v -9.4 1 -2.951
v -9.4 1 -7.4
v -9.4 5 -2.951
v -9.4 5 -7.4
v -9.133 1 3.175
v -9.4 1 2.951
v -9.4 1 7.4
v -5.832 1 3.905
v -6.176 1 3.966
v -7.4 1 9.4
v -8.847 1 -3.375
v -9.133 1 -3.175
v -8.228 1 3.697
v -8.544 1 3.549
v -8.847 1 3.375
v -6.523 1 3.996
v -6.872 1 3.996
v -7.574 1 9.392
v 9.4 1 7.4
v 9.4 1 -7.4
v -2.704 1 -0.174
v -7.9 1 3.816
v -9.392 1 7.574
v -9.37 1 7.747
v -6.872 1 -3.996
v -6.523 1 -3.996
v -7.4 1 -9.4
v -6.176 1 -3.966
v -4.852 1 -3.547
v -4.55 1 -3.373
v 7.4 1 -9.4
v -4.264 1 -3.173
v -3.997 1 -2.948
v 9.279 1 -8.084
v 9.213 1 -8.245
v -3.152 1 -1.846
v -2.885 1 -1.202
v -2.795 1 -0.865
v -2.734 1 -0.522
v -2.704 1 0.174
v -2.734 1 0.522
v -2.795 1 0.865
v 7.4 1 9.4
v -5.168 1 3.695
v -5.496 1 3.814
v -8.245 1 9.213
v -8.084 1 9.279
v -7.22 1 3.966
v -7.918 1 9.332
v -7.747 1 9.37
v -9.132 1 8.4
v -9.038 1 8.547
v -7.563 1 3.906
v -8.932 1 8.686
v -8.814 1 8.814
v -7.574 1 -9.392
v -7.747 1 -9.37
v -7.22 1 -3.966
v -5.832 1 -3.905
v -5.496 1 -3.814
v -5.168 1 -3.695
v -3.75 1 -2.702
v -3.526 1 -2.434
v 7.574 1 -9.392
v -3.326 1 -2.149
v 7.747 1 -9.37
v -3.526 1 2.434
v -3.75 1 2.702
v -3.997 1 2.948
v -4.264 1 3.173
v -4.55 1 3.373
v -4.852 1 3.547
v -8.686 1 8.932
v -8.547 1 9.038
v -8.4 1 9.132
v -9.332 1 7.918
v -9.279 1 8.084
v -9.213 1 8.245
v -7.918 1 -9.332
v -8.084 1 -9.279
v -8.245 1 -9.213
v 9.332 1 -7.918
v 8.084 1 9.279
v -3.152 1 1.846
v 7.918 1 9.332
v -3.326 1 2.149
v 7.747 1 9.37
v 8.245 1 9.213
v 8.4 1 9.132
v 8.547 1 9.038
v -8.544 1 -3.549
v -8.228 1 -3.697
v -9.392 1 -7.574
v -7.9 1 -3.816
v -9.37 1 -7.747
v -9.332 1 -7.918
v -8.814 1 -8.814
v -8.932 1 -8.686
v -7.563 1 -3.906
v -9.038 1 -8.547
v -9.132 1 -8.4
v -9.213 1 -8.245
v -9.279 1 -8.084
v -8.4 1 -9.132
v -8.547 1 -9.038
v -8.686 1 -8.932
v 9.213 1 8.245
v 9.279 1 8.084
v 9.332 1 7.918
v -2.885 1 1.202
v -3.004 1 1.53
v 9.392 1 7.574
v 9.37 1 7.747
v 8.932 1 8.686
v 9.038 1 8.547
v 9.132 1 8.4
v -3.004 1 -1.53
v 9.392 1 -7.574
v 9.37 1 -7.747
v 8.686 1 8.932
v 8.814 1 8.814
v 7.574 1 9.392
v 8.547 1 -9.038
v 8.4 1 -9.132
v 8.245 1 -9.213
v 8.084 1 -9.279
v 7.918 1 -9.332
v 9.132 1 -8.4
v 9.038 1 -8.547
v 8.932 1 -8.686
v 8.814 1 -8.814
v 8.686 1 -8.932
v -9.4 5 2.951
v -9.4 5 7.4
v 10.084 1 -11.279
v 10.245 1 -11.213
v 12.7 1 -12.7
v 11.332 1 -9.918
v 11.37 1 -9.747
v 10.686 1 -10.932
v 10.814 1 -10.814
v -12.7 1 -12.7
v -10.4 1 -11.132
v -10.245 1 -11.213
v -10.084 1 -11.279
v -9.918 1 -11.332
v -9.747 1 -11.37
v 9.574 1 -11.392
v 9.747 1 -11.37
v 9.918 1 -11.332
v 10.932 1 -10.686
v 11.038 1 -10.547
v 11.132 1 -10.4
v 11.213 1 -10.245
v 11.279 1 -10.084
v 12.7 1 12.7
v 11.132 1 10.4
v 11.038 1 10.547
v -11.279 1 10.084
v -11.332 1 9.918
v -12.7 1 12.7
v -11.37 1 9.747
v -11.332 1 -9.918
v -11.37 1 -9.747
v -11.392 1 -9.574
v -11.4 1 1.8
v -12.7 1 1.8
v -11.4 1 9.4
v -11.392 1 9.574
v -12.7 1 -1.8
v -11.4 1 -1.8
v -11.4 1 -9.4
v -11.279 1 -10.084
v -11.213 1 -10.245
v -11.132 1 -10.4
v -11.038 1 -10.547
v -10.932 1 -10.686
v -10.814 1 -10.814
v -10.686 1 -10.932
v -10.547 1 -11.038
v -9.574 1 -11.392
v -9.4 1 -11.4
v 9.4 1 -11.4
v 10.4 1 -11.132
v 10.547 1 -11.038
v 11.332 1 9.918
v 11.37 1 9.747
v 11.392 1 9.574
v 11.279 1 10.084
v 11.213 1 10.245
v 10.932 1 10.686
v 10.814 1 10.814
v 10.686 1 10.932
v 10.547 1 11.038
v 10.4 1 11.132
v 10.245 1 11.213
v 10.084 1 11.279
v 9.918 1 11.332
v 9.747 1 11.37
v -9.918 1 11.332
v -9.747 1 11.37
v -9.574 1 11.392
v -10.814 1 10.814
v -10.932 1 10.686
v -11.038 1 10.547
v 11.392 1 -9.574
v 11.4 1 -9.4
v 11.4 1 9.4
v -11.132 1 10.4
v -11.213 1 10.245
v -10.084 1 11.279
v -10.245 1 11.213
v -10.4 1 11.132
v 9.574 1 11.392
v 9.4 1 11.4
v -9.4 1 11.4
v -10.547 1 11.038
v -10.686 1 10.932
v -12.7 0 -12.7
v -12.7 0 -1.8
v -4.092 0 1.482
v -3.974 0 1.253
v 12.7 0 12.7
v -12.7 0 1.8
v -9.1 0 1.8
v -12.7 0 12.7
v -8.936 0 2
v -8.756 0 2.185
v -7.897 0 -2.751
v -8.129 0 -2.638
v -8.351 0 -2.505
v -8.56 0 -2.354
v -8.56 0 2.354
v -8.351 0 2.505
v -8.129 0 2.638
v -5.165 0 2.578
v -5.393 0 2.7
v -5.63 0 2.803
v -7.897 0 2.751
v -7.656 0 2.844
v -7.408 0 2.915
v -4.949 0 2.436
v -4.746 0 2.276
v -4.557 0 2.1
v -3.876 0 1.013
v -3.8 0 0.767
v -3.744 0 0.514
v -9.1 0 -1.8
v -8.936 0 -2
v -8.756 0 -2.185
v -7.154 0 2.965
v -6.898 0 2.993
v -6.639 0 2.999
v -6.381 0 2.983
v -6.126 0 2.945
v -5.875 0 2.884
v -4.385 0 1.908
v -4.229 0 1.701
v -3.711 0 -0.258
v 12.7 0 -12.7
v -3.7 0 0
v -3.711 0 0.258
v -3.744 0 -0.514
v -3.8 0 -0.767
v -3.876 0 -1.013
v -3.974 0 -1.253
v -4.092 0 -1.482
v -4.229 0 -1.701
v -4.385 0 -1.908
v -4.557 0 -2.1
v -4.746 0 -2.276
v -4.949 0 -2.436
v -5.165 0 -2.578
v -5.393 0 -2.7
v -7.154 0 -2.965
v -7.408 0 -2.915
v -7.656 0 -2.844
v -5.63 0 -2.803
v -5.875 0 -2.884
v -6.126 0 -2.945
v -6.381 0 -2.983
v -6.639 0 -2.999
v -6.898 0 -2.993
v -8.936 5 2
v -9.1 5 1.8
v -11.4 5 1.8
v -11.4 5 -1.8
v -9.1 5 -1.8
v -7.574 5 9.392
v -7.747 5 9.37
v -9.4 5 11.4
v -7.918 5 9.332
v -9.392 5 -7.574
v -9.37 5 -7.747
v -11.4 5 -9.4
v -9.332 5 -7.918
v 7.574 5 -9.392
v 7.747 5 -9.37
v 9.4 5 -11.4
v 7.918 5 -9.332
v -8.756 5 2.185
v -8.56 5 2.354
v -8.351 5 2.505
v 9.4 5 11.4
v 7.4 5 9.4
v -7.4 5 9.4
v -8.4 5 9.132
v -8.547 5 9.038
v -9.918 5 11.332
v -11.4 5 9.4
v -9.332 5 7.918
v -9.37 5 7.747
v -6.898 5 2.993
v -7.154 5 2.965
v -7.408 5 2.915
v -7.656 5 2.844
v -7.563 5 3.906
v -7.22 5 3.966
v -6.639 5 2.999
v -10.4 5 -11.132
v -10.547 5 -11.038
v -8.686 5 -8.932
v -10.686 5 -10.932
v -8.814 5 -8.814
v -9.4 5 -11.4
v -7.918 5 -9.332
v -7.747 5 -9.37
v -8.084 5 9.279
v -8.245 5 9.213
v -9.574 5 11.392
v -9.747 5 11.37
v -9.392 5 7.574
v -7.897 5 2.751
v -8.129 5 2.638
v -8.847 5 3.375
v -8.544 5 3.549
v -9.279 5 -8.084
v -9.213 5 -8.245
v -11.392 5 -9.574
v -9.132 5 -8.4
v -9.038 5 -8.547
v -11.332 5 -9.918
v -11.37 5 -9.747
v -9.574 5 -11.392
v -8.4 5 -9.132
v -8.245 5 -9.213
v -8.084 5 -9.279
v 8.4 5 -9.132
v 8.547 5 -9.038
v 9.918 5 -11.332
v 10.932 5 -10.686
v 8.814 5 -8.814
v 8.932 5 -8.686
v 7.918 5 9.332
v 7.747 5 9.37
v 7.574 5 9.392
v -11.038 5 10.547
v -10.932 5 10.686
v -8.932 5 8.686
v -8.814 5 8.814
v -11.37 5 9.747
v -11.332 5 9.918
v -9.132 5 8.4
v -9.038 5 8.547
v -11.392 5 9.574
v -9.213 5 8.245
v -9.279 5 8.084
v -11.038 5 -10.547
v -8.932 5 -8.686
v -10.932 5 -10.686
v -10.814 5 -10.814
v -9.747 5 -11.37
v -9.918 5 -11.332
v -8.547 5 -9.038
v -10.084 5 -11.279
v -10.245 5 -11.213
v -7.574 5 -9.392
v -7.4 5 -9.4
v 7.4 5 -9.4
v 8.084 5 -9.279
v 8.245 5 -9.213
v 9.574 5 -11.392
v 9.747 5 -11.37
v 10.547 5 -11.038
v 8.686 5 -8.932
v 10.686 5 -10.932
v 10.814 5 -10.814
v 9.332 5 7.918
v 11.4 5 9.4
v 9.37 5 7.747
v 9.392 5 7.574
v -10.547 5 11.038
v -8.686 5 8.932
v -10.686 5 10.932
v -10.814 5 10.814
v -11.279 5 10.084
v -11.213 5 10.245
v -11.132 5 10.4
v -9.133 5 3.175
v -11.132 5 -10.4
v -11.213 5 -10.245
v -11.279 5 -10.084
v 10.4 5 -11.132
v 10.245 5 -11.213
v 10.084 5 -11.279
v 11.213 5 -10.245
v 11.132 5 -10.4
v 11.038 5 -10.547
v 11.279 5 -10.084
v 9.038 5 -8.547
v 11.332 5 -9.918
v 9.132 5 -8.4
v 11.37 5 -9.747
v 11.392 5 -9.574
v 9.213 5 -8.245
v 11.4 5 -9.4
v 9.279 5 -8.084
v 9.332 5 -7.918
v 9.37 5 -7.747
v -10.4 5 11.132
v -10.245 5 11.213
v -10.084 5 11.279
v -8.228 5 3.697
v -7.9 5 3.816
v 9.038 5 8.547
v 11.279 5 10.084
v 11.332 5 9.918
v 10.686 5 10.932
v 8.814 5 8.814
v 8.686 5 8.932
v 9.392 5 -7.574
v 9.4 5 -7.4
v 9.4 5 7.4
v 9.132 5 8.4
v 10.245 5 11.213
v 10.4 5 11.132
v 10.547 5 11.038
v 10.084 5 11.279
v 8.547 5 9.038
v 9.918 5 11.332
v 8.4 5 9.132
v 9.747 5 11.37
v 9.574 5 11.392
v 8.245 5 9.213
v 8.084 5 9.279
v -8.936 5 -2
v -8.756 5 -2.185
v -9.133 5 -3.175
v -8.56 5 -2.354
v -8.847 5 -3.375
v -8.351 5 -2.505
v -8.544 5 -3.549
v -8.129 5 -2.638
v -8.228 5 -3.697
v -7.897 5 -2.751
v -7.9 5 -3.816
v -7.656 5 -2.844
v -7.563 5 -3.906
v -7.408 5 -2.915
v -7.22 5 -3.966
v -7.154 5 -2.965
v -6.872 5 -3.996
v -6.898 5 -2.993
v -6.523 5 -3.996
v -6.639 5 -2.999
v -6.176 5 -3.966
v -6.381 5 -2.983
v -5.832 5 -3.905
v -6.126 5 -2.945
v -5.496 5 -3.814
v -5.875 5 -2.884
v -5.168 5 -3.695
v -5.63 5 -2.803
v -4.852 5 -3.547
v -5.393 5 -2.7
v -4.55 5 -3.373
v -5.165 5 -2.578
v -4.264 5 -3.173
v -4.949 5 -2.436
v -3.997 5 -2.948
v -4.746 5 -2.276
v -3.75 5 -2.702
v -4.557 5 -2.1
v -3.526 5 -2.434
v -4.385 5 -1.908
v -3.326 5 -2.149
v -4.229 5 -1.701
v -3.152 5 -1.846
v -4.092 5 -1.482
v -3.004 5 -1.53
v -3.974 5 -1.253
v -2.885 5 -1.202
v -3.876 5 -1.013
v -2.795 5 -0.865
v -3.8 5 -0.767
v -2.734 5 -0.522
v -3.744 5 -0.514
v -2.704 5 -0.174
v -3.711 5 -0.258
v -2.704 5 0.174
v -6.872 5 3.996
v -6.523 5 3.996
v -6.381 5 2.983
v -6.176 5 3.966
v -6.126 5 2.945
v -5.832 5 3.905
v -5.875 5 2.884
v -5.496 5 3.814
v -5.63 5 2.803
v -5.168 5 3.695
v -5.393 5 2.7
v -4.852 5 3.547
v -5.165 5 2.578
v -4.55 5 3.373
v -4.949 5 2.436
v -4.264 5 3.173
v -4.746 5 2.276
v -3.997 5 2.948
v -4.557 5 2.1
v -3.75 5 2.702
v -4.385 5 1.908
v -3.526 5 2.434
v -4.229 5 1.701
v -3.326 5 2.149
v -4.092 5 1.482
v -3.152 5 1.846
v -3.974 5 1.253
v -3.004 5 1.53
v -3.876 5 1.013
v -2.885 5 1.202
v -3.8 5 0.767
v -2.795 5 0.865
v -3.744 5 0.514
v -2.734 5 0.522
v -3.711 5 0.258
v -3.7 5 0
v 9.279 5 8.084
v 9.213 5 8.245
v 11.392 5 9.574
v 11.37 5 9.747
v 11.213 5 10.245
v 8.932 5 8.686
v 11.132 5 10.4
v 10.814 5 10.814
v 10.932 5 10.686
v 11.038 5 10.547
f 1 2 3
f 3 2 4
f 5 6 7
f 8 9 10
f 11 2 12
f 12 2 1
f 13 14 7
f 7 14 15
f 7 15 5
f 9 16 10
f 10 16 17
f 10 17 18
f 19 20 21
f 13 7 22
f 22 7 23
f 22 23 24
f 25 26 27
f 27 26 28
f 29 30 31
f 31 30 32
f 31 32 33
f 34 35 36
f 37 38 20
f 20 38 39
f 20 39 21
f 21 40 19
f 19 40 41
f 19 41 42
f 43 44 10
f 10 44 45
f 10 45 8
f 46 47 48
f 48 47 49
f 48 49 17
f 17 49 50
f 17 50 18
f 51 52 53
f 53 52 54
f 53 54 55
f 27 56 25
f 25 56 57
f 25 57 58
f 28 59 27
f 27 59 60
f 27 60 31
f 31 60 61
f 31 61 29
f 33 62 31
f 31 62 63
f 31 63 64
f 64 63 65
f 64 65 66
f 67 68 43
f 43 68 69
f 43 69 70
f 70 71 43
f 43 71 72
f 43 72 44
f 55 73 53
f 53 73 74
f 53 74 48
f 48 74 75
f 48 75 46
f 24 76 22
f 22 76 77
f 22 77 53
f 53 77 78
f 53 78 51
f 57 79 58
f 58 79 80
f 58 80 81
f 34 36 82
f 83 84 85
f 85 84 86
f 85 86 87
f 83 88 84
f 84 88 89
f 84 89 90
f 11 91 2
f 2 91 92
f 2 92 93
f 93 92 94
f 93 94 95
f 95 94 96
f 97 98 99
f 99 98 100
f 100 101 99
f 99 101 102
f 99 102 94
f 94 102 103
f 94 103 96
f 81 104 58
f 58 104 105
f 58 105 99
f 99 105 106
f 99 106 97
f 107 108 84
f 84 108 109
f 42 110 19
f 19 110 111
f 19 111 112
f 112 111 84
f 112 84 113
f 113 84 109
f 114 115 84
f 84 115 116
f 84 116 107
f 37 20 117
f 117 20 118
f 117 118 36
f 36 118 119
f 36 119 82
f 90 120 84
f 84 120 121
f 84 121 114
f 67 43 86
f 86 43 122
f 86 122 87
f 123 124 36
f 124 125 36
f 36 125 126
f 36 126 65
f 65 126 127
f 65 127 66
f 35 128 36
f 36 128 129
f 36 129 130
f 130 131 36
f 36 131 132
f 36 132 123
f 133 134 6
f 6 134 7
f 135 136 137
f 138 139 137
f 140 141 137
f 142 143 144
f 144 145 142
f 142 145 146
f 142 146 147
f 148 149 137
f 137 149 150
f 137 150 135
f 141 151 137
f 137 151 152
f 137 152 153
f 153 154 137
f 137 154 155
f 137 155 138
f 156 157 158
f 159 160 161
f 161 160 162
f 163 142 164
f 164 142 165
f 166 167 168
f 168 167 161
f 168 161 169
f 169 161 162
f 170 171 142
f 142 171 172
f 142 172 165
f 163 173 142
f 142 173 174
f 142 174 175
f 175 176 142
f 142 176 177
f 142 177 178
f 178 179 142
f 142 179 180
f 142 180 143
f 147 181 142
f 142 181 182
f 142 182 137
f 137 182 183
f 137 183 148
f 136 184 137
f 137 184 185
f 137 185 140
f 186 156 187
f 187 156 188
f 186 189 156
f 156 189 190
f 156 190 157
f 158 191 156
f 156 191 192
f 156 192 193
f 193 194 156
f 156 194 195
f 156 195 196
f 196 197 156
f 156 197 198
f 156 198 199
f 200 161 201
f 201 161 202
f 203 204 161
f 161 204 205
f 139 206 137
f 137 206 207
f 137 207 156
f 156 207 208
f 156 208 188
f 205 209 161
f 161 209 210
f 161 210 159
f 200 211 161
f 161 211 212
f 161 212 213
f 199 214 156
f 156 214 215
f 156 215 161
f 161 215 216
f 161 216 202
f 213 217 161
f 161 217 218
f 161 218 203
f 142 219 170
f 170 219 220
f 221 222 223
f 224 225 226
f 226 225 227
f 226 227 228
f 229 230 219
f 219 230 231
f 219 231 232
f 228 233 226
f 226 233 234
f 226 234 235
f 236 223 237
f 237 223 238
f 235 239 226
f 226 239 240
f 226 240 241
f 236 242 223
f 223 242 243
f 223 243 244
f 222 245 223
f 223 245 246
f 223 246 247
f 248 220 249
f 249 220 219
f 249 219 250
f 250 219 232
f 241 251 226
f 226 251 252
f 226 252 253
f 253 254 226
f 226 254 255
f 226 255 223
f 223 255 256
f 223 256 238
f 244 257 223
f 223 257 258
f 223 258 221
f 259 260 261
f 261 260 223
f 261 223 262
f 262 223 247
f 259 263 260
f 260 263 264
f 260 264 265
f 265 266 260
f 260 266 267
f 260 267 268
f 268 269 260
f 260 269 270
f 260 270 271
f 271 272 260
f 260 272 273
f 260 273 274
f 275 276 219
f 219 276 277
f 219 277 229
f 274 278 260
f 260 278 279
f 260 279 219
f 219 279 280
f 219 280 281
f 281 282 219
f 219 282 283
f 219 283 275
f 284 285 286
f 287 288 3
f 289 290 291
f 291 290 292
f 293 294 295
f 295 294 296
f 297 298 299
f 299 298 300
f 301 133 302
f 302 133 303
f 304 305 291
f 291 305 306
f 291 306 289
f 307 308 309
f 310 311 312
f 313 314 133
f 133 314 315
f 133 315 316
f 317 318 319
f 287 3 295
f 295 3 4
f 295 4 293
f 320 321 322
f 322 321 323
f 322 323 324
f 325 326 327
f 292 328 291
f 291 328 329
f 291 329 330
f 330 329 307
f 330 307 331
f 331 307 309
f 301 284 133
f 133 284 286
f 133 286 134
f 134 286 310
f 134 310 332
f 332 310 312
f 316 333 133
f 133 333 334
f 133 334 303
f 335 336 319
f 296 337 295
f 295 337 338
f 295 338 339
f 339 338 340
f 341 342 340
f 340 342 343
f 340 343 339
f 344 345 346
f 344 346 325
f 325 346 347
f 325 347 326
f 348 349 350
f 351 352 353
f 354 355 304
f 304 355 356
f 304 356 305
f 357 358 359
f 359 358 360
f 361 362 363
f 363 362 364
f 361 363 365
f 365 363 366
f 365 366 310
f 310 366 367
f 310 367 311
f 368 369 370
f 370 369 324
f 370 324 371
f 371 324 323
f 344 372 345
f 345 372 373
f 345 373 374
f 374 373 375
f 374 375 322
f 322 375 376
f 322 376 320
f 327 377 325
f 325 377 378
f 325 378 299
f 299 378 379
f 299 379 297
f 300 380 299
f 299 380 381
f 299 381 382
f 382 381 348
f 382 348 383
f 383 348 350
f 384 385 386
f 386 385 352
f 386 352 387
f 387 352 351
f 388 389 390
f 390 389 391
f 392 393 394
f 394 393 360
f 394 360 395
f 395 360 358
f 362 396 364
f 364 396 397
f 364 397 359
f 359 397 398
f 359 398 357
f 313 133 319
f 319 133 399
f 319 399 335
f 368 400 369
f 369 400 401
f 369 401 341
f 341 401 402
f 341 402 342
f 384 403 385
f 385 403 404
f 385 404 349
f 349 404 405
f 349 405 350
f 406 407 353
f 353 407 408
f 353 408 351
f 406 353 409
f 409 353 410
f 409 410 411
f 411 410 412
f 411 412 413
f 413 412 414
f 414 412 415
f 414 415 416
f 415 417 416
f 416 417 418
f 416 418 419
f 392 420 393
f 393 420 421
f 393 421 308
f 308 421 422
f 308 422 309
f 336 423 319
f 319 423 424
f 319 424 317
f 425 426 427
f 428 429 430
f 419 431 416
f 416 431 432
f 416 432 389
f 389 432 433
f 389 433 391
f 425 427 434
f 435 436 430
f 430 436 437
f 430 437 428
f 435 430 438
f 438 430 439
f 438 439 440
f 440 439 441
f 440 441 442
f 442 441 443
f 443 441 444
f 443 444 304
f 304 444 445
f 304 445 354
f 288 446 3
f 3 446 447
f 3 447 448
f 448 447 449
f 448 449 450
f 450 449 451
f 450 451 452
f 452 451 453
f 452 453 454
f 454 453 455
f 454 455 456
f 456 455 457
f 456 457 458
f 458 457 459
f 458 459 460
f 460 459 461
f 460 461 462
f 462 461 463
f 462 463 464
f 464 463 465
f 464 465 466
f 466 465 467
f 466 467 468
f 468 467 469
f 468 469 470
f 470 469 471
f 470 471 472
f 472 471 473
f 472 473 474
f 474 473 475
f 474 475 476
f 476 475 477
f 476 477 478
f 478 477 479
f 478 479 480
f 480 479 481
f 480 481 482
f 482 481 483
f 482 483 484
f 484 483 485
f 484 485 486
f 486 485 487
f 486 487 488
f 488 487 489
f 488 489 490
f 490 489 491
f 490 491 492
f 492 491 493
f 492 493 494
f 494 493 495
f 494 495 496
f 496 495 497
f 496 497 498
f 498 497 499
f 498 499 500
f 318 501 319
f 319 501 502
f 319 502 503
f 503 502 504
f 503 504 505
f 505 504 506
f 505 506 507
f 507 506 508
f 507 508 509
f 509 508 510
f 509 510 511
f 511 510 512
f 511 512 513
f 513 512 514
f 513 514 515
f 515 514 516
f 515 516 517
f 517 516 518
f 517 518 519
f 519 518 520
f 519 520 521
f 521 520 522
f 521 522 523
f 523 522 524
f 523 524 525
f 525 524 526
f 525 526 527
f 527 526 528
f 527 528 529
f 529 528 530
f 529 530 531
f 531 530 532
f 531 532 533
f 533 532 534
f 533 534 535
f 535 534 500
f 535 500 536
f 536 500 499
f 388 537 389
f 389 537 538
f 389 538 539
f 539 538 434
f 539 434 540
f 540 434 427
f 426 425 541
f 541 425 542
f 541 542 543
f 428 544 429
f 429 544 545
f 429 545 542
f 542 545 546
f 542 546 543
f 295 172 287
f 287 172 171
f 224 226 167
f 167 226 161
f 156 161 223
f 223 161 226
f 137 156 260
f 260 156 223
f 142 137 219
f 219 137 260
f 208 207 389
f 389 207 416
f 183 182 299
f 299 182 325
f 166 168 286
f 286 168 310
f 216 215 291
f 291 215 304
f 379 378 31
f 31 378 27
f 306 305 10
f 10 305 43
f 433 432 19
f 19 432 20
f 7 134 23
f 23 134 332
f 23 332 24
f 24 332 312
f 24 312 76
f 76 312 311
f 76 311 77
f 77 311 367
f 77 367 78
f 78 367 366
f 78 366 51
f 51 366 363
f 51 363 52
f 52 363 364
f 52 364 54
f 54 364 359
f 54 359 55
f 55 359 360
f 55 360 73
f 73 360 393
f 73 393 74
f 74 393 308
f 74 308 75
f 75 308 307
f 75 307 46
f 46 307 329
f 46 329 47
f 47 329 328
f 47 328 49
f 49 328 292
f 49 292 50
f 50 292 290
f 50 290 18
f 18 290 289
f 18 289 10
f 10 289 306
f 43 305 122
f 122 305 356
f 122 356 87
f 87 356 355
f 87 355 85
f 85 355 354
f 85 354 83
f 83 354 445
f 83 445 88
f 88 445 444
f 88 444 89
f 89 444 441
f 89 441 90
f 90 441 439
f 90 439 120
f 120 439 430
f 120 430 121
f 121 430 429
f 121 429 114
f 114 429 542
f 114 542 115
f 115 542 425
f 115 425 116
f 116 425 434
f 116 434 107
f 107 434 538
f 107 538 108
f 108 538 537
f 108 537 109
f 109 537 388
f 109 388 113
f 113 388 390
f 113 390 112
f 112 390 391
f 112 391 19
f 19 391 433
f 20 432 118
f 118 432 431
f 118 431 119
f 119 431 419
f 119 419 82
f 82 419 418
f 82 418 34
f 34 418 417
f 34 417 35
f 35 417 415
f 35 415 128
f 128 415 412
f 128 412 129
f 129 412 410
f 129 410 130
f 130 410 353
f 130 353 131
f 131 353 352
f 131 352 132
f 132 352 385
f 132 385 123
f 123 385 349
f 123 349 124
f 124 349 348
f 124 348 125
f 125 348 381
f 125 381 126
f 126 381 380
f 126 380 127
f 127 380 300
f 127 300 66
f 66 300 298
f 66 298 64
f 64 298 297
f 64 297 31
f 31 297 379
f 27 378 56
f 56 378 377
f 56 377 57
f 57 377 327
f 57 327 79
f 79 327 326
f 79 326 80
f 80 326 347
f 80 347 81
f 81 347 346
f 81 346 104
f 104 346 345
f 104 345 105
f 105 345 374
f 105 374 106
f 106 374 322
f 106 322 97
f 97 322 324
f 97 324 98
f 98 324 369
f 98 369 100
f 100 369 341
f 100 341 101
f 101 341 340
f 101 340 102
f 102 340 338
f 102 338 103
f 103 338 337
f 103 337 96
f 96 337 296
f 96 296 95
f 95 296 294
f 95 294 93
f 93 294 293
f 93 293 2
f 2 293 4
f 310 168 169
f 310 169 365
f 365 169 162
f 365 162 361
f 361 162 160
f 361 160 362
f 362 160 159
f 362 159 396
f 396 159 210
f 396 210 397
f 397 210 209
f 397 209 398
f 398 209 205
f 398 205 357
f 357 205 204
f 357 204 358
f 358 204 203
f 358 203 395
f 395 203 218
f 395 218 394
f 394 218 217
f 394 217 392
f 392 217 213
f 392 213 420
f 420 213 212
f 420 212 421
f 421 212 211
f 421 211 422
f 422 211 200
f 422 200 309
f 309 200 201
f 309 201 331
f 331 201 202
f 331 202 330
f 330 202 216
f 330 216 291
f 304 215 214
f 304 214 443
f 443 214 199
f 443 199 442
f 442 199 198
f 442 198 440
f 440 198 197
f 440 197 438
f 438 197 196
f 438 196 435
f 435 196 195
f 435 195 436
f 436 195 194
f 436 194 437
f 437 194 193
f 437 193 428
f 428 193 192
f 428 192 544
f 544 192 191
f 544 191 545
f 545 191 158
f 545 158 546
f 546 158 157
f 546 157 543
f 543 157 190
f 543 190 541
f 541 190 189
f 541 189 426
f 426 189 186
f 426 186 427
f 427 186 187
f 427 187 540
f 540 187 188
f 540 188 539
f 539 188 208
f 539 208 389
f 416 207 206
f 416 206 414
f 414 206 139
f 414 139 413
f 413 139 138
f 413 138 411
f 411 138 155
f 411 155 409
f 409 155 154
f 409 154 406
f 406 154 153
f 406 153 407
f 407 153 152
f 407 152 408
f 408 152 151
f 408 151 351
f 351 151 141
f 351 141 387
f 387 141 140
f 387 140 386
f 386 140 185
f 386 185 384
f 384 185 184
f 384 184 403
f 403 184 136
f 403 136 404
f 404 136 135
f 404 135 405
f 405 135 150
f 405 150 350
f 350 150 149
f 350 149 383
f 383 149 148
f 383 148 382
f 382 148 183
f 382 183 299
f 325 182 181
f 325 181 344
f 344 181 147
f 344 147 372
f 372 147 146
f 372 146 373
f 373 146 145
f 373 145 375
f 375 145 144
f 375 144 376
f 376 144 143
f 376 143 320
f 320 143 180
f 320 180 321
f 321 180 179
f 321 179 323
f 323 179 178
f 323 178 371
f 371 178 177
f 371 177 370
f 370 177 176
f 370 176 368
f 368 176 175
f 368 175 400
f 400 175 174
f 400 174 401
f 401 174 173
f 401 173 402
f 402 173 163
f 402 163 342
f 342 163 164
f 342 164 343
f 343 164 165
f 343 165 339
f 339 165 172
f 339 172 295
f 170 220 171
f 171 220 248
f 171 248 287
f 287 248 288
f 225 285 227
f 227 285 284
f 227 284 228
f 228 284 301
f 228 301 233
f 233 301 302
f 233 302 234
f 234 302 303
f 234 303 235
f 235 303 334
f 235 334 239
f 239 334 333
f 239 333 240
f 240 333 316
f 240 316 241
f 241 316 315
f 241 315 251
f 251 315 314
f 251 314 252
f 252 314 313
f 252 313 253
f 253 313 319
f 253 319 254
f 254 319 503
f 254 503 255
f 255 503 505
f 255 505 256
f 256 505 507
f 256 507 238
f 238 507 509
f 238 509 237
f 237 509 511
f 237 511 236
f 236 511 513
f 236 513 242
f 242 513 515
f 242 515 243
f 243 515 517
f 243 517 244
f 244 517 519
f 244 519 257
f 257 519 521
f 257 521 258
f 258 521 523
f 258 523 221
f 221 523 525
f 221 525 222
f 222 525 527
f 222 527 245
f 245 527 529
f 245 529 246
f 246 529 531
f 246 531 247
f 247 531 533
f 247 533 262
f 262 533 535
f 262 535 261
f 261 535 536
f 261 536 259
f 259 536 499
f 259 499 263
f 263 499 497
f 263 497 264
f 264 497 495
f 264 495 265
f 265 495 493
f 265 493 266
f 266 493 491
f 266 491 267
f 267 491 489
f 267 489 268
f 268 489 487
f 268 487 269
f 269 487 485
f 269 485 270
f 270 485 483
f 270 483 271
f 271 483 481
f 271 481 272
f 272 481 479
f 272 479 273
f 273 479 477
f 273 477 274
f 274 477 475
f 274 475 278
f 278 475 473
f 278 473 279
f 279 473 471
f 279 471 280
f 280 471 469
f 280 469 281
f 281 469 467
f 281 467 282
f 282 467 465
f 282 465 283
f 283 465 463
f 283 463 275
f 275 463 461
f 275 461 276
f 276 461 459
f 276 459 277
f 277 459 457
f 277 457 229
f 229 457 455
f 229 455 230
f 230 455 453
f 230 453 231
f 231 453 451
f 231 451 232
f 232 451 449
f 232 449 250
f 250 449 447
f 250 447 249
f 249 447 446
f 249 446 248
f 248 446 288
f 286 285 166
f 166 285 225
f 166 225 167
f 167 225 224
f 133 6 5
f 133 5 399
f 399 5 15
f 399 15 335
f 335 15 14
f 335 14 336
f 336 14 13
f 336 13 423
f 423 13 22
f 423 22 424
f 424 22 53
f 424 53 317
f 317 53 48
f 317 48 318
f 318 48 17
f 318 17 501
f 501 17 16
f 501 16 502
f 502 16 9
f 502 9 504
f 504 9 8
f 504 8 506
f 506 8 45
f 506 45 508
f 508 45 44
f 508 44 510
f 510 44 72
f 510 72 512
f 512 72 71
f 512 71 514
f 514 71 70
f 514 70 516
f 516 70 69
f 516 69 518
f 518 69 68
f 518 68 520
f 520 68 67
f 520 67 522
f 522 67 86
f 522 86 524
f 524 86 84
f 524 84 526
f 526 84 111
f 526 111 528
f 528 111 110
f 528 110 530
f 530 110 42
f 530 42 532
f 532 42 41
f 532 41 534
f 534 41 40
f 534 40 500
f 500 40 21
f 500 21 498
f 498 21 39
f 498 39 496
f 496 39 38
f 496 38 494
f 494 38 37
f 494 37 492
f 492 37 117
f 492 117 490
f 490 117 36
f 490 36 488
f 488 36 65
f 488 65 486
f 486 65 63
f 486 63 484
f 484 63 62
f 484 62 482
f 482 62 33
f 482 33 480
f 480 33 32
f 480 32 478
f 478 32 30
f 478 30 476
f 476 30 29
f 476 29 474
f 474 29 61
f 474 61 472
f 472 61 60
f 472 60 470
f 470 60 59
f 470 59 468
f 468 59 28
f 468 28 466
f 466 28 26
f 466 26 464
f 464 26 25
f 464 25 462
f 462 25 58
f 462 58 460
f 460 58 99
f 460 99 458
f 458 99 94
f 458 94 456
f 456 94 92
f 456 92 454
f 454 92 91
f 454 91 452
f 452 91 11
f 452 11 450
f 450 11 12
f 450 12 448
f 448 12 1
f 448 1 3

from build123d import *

# Parameters (mm, degrees)
SKETCH1_W           = 25.4
SKETCH1_H           = 25.4
BOSS_EXTRUDE1_DEPTH = 1
SKETCH2_W           = 22.8
SKETCH2_H           = 22.8
SKETCH2_W_2         = 18.8
SKETCH2_H_2         = 18.8
BOSS_EXTRUDE2_DEPTH = 4
FILLET1_R           = 2
SKETCH3_W           = 1.3
SKETCH3_H           = 3.6
CUT_EXTRUDE1_DEPTH  = 19.643497526
BOSS_EXTRUDE3_START = 4
BOSS_EXTRUDE3_DEPTH = 4


with BuildPart() as part:
    # Sketch1 → Boss-Extrude1 (new body)
    with BuildSketch(Plane(origin=(0, 0, 0), x_dir=(1, 0, 0), z_dir=(0, 1, 0))):
        Rectangle(SKETCH1_W, SKETCH1_H)
    extrude(amount=BOSS_EXTRUDE1_DEPTH)

    # Sketch2 → Boss-Extrude2 (add)
    with BuildSketch(Plane(origin=(0, 1, 0), x_dir=(1, 0, 0), z_dir=(0, 1, 0))):
        Rectangle(SKETCH2_W, SKETCH2_H)
        Rectangle(SKETCH2_W_2, SKETCH2_H_2, mode=Mode.SUBTRACT)
    extrude(amount=BOSS_EXTRUDE2_DEPTH)

    # Fillet1
    fillet1_edges = [part.edges().sort_by_distance(p)[0] for p in [
        (11.4, 3, 11.4),
        (11.4, 3, -11.4),
        (-11.4, 3, -11.4),
        (-11.4, 3, 11.4),
        (-9.4, 3, -9.4),
        (-9.4, 3, 9.4),
        (9.4, 3, 9.4),
        (9.4, 3, -9.4),
    ]]
    fillet(fillet1_edges, radius=FILLET1_R)

    # Sketch3 → Cut-Extrude1 (cut, through all)
    with BuildSketch(Plane(origin=(0, 5, 0), x_dir=(1, 0, 0), z_dir=(0, 1, 0))):
        with BuildLine():
            Line((-6.7, 1.8), (-9.1, 1.8))
            ThreePointArc((-9.1, 1.8), (-9.261854267, 1.561058204), (-9.4, 1.307669683))
            Line((-9.4, 1.307669683), (-9.4, -1.307669683))
            ThreePointArc((-9.4, -1.307669683), (-9.261854267, -1.561058204), (-9.1, -1.8))
            Line((-9.1, -1.8), (-6.7, -1.8))
            Line((-6.7, -1.8), (-6.7, 1.8))
        make_face()
        with Locations((-12.05, 0)):
            Rectangle(SKETCH3_W, SKETCH3_H)
        with BuildLine():
            Line((-9.4, 1.8), (-11.4, 1.8))
            Line((-11.4, 1.8), (-11.4, -1.8))
            Line((-11.4, -1.8), (-9.4, -1.8))
            Line((-9.4, -1.8), (-9.4, -1.307669683))
            ThreePointArc((-9.4, -1.307669683), (-9.7, 0), (-9.4, 1.307669683))
            Line((-9.4, 1.307669683), (-9.4, 1.8))
        make_face()
        with BuildLine():
            ThreePointArc((-3.7, 0), (-5.751316702, 2.846049894), (-9.1, 1.8))
            Line((-9.1, 1.8), (-6.7, 1.8))
            Line((-6.7, 1.8), (-6.7, -1.8))
            Line((-6.7, -1.8), (-9.1, -1.8))
            ThreePointArc((-9.1, -1.8), (-5.751316702, -2.846049894), (-3.7, 0))
        make_face()
        with BuildLine():
            Line((-9.1, 1.8), (-9.4, 1.8))
            Line((-9.4, 1.8), (-9.4, 1.307669683))
            ThreePointArc((-9.4, 1.307669683), (-9.261854267, 1.561058204), (-9.1, 1.8))
        make_face()
        with BuildLine():
            Line((-9.4, -1.307669683), (-9.4, 1.307669683))
            ThreePointArc((-9.4, 1.307669683), (-9.7, 0), (-9.4, -1.307669683))
        make_face()
        with BuildLine():
            Line((-9.4, -1.307669683), (-9.4, -1.8))
            Line((-9.4, -1.8), (-9.1, -1.8))
            ThreePointArc((-9.1, -1.8), (-9.261854267, -1.561058204), (-9.4, -1.307669683))
        make_face()
    extrude(amount=-CUT_EXTRUDE1_DEPTH, mode=Mode.SUBTRACT)

    # Sketch4 → Boss-Extrude3 (add)
    with BuildSketch(Plane(origin=(0, 1, 0), x_dir=(1, 0, 0), z_dir=(0, 1, 0)).offset(BOSS_EXTRUDE3_START)):
        with BuildLine():
            Line((-9.1, 1.8), (-9.4, 1.8))
            Line((-9.4, 1.8), (-9.4, 2.951270913))
            ThreePointArc((-9.4, 2.951270913), (-2.7, 0), (-9.4, -2.951270913))
            Line((-9.4, -2.951270913), (-9.4, -1.8))
            Line((-9.4, -1.8), (-9.1, -1.8))
            ThreePointArc((-9.1, -1.8), (-3.7, 0), (-9.1, 1.8))
        make_face()
    extrude(amount=-BOSS_EXTRUDE3_DEPTH)


solid = part.part
